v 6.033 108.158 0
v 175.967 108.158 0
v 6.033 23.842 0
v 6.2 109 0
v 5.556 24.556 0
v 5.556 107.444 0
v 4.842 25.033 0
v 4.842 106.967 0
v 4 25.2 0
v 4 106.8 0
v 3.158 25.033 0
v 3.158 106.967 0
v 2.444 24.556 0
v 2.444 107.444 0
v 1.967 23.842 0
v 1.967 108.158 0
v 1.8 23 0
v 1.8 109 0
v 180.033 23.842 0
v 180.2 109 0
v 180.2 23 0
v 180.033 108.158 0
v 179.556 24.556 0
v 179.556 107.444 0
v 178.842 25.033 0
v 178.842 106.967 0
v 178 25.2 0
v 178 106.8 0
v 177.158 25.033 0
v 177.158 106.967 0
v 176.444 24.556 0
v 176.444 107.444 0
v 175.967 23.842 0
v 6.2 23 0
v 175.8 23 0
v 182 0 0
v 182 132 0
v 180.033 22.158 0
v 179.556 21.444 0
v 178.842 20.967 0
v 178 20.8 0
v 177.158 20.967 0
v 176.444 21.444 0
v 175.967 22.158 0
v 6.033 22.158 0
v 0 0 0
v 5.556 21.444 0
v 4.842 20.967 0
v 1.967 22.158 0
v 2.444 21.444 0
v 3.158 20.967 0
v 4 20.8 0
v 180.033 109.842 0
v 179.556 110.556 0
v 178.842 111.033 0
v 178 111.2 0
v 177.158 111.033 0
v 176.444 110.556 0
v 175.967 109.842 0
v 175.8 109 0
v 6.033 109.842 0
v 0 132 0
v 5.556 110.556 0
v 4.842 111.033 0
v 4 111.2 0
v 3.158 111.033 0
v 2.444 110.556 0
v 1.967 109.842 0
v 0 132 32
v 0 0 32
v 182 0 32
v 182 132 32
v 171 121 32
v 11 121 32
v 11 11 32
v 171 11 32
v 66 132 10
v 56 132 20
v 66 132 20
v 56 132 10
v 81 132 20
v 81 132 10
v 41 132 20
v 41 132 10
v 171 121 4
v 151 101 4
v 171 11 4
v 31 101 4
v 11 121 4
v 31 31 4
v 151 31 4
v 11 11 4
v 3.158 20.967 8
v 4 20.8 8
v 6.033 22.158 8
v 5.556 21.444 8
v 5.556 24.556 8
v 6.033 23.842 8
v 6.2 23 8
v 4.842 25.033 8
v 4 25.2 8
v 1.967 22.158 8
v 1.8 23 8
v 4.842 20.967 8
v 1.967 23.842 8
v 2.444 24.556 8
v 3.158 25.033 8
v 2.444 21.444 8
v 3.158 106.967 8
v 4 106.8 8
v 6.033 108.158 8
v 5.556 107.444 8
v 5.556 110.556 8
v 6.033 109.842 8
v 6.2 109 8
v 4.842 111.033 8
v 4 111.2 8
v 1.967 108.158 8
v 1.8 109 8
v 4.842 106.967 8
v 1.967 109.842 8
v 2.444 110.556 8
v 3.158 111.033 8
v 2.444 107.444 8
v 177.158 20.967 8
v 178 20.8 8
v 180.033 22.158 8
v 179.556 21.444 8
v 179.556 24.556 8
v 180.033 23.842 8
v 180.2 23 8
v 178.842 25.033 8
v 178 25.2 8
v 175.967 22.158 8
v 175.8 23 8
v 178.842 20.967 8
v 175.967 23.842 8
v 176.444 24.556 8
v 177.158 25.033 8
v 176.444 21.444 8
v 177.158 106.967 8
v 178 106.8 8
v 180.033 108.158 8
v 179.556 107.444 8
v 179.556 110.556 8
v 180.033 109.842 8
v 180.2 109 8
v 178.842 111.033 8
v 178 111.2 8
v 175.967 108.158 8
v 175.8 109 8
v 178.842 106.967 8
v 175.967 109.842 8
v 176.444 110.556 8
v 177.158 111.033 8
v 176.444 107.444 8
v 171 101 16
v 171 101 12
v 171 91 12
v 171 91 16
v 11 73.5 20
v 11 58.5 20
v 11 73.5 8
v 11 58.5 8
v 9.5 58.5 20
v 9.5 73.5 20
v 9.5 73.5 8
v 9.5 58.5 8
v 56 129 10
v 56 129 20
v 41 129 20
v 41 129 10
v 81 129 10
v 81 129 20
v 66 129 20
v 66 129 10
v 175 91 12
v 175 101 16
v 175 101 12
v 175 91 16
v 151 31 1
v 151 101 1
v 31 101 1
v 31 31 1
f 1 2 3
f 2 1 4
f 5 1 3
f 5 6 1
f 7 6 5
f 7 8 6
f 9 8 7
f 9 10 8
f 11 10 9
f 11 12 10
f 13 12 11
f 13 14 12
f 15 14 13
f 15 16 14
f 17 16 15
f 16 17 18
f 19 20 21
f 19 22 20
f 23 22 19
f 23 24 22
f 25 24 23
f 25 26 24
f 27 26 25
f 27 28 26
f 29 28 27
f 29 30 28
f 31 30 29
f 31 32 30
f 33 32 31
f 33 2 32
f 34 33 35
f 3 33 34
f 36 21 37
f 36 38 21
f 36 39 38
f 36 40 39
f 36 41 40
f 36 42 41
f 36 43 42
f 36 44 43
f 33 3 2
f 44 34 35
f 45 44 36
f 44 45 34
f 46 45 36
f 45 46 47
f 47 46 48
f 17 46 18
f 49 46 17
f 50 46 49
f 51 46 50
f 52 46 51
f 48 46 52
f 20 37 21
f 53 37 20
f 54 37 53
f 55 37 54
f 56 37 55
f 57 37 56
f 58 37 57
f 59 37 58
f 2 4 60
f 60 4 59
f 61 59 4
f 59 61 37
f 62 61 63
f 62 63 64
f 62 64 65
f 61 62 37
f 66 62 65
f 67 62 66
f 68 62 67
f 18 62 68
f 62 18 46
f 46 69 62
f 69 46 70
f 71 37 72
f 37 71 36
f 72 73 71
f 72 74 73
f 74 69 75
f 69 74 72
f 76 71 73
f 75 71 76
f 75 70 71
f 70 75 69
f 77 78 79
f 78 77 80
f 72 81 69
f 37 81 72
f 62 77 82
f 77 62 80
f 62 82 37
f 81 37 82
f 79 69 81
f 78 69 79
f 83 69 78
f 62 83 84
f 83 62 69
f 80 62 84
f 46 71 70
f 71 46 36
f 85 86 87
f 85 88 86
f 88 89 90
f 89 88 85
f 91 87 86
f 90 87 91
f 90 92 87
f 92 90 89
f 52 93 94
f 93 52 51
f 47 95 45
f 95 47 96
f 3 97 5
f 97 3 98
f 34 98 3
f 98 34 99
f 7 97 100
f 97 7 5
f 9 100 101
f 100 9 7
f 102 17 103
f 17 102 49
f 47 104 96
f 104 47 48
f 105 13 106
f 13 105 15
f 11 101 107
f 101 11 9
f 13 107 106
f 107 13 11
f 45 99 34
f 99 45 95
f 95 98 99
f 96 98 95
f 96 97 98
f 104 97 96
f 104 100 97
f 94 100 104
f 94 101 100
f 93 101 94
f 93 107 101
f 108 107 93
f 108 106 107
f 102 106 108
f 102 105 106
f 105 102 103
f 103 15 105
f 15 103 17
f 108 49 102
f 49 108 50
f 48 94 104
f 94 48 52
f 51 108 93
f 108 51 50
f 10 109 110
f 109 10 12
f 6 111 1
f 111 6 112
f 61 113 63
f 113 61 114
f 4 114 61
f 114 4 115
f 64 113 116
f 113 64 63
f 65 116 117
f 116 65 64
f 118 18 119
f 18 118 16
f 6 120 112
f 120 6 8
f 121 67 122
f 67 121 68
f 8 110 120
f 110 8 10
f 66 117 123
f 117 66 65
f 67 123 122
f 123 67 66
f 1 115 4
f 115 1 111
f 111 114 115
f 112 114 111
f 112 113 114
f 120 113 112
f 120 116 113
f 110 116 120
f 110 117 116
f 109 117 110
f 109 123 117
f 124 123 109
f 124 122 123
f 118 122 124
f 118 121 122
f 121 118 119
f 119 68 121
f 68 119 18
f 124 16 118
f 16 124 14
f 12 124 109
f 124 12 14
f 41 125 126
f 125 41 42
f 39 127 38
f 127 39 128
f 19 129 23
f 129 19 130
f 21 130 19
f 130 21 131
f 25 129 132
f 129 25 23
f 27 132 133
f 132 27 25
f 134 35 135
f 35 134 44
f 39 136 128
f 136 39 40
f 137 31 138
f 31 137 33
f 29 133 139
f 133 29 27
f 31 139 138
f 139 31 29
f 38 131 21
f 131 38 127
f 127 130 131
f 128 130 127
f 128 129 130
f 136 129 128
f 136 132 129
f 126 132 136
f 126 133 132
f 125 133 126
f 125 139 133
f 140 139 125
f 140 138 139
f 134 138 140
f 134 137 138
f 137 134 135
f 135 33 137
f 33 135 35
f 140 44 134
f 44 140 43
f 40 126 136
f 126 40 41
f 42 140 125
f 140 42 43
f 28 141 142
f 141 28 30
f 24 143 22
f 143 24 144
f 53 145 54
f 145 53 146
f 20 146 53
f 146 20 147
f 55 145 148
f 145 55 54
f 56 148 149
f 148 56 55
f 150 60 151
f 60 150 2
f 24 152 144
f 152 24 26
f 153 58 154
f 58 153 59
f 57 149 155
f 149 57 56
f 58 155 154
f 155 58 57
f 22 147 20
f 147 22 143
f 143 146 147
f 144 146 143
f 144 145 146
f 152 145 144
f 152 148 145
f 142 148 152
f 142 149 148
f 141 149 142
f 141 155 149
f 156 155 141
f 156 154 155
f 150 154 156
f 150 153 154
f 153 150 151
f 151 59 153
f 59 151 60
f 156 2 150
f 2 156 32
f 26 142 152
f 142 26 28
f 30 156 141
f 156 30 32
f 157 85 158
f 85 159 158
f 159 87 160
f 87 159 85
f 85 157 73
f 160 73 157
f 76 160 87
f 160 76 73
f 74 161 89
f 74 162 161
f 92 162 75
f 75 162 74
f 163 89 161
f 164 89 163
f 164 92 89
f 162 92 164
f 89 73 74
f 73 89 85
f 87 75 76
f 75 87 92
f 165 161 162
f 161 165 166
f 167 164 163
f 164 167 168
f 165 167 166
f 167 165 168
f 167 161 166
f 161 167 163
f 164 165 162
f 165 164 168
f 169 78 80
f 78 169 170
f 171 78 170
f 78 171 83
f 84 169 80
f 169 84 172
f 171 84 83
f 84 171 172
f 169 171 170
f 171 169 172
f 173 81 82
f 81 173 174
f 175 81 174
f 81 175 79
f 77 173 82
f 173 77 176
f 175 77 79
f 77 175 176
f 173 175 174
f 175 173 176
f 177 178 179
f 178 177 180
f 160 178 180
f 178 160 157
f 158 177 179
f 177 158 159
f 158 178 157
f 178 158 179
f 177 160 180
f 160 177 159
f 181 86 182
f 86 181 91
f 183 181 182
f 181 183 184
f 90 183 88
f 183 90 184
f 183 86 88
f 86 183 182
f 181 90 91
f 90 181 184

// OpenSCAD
// ==============================================================================
// 7100CPT ECU — Enclosure Design 1: "Classic Box"
// CNC-machined 6061-T6 aluminum, two-piece construction
// ==============================================================================
// PCB: 160mm x 110mm x 1.6mm
// Enclosure: 170mm x 120mm x 32mm (wall thickness 3mm)
// ==============================================================================

// -- Parameters --
pcb_x = 160;
pcb_y = 110;
pcb_z = 1.6;

wall = 3;
base_z = 4;        // base plate thickness
lid_z = 2;         // lid thickness
inner_z = 28;       // internal height (PCB + clearance + airflow)
total_x = pcb_x + 2*wall + 2*8;  // +8mm per side for mounting flanges
total_y = pcb_y + 2*wall + 2*8;
total_z = base_z + inner_z + lid_z;

// Mounting flange dimensions
flange_w = 8;
flange_h = 8;

// Screw holes (M4)
m4_r = 2.2;    // clearance hole for M4
m4_head_r = 4; // countersink

// Connector cutouts
main_conn_x = 65;   // 42-pin connector width
main_conn_y = 15;   // connector body depth
main_conn_z = 12;   // connector height

can_conn_w = 15;
can_conn_h = 10;

usb_c_w = 10;
usb_c_h = 4;

// ==============================================================================
// MODULE: Base (bottom half with internal cavity and connector openings)
// ==============================================================================
module base() {
    difference() {
        // Outer body
        union() {
            // Main body
            cube([total_x, total_y, base_z + inner_z]);

            // Mounting flanges (left/right)
            for (side = [0, 1]) {
                translate([side * (total_x - flange_w), flange_w, 0])
                    cube([flange_w, total_y - 2*flange_w, flange_h]);
            }
        }

        // Internal cavity
        translate([wall + flange_w, wall + flange_w, base_z])
            cube([pcb_x, pcb_y, inner_z]);

        // PCB standoff posts (4 corners)
        for (x = [flange_w + wall + 6, flange_w + wall + pcb_x - 6]) {
            for (y = [flange_w + wall + 6, flange_w + wall + pcb_y - 6]) {
                translate([x, y, base_z])
                    cylinder(h = 6, r = 2.5, $fn = 16);
                translate([x, y, base_z])
                    cylinder(h = 8, r = 1.5, $fn = 16);  // M3 threaded insert hole
            }
        }

        // Main connector cutout (left side)
        translate([
            flange_w + wall/2,
            (total_y - main_conn_y) / 2,
            base_z + 4
        ])
            cube([wall + 1, main_conn_y, main_conn_z]);

        // CAN0 connector cutout (top)
        translate([
            flange_w + wall + 30,
            total_y - wall,
            base_z + 6
        ])
            cube([can_conn_w, wall + 1, can_conn_h]);

        // CAN1 connector cutout (top)
        translate([
            flange_w + wall + 55,
            total_y - wall,
            base_z + 6
        ])
            cube([can_conn_w, wall + 1, can_conn_h]);

        // USB-C cutout (right side)
        translate([
            total_x - flange_w - wall,
            flange_w + wall + 80,
            base_z + 8
        ])
            cube([wall + 1, usb_c_w, usb_c_h]);

        // Screw holes in mounting flanges
        for (side = [0, 1]) {
            for (y = [flange_w + 15, total_y - flange_w - 15]) {
                translate([side * (total_x - flange_w) + flange_w/2, y, 0])
                    cylinder(h = flange_h, r = m4_r, $fn = 16);
            }
        }

        // Lid screw holes (around perimeter, recessed)
        // 4 per side
        for (x = [20, total_x/3, 2*total_x/3, total_x - 20]) {
            for (y = [18, total_y - 18]) {
                translate([x, y, base_z + inner_z]) {
                    cylinder(h = lid_z + 2, r = 1.8, $fn = 12);  // M2.5 clearance
                    cylinder(h = 3, r1 = 2.5, r2 = 1.8, $fn = 12); // countersink
                }
            }
        }
        // Side screw holes
        for (x = [18, total_x - 18]) {
            for (y = [40, total_y - 40]) {
                translate([x, y, base_z + inner_z]) {
                    cylinder(h = lid_z + 2, r = 1.8, $fn = 12);
                    cylinder(h = 3, r1 = 2.5, r2 = 1.8, $fn = 12);
                }
            }
        }

        // Weight reduction: pocket bottom center
        translate([
            flange_w + wall + 20,
            flange_w + wall + 20,
            1
        ])
            cube([pcb_x - 40, pcb_y - 40, base_z - 1]);

        // Branding recess on top
        translate([
            (total_x - 20) / 2,
            (total_y - 10) / 2,
            base_z + inner_z - 0.5
        ])
            cube([20, 10, 0.5]);
    }
}

// ==============================================================================
// MODULE: Lid (top cover with screw recesses)
// ==============================================================================
module lid() {
    difference() {
        // Lid plate
        translate([0, 0, base_z + inner_z])
            cube([total_x, total_y, lid_z]);

        // Screw holes matching base
        for (x = [20, total_x/3, 2*total_x/3, total_x - 20]) {
            for (y = [18, total_y - 18]) {
                translate([x, y, base_z + inner_z - 0.1])
                    cylinder(h = lid_z + 0.2, r = 1.8, $fn = 12);
            }
        }
        for (x = [18, total_x - 18]) {
            for (y = [40, total_y - 40]) {
                translate([x, y, base_z + inner_z - 0.1])
                    cylinder(h = lid_z + 0.2, r = 1.8, $fn = 12);
            }
        }
    }
}

// ==============================================================================
// MODULE: Full Assembly
// ==============================================================================
module classic_box_assembly() {
    base();
    %lid();  // transparent display
}

// Render single parts for export
// base();
// lid();

// Assembly view
classic_box_assembly();
